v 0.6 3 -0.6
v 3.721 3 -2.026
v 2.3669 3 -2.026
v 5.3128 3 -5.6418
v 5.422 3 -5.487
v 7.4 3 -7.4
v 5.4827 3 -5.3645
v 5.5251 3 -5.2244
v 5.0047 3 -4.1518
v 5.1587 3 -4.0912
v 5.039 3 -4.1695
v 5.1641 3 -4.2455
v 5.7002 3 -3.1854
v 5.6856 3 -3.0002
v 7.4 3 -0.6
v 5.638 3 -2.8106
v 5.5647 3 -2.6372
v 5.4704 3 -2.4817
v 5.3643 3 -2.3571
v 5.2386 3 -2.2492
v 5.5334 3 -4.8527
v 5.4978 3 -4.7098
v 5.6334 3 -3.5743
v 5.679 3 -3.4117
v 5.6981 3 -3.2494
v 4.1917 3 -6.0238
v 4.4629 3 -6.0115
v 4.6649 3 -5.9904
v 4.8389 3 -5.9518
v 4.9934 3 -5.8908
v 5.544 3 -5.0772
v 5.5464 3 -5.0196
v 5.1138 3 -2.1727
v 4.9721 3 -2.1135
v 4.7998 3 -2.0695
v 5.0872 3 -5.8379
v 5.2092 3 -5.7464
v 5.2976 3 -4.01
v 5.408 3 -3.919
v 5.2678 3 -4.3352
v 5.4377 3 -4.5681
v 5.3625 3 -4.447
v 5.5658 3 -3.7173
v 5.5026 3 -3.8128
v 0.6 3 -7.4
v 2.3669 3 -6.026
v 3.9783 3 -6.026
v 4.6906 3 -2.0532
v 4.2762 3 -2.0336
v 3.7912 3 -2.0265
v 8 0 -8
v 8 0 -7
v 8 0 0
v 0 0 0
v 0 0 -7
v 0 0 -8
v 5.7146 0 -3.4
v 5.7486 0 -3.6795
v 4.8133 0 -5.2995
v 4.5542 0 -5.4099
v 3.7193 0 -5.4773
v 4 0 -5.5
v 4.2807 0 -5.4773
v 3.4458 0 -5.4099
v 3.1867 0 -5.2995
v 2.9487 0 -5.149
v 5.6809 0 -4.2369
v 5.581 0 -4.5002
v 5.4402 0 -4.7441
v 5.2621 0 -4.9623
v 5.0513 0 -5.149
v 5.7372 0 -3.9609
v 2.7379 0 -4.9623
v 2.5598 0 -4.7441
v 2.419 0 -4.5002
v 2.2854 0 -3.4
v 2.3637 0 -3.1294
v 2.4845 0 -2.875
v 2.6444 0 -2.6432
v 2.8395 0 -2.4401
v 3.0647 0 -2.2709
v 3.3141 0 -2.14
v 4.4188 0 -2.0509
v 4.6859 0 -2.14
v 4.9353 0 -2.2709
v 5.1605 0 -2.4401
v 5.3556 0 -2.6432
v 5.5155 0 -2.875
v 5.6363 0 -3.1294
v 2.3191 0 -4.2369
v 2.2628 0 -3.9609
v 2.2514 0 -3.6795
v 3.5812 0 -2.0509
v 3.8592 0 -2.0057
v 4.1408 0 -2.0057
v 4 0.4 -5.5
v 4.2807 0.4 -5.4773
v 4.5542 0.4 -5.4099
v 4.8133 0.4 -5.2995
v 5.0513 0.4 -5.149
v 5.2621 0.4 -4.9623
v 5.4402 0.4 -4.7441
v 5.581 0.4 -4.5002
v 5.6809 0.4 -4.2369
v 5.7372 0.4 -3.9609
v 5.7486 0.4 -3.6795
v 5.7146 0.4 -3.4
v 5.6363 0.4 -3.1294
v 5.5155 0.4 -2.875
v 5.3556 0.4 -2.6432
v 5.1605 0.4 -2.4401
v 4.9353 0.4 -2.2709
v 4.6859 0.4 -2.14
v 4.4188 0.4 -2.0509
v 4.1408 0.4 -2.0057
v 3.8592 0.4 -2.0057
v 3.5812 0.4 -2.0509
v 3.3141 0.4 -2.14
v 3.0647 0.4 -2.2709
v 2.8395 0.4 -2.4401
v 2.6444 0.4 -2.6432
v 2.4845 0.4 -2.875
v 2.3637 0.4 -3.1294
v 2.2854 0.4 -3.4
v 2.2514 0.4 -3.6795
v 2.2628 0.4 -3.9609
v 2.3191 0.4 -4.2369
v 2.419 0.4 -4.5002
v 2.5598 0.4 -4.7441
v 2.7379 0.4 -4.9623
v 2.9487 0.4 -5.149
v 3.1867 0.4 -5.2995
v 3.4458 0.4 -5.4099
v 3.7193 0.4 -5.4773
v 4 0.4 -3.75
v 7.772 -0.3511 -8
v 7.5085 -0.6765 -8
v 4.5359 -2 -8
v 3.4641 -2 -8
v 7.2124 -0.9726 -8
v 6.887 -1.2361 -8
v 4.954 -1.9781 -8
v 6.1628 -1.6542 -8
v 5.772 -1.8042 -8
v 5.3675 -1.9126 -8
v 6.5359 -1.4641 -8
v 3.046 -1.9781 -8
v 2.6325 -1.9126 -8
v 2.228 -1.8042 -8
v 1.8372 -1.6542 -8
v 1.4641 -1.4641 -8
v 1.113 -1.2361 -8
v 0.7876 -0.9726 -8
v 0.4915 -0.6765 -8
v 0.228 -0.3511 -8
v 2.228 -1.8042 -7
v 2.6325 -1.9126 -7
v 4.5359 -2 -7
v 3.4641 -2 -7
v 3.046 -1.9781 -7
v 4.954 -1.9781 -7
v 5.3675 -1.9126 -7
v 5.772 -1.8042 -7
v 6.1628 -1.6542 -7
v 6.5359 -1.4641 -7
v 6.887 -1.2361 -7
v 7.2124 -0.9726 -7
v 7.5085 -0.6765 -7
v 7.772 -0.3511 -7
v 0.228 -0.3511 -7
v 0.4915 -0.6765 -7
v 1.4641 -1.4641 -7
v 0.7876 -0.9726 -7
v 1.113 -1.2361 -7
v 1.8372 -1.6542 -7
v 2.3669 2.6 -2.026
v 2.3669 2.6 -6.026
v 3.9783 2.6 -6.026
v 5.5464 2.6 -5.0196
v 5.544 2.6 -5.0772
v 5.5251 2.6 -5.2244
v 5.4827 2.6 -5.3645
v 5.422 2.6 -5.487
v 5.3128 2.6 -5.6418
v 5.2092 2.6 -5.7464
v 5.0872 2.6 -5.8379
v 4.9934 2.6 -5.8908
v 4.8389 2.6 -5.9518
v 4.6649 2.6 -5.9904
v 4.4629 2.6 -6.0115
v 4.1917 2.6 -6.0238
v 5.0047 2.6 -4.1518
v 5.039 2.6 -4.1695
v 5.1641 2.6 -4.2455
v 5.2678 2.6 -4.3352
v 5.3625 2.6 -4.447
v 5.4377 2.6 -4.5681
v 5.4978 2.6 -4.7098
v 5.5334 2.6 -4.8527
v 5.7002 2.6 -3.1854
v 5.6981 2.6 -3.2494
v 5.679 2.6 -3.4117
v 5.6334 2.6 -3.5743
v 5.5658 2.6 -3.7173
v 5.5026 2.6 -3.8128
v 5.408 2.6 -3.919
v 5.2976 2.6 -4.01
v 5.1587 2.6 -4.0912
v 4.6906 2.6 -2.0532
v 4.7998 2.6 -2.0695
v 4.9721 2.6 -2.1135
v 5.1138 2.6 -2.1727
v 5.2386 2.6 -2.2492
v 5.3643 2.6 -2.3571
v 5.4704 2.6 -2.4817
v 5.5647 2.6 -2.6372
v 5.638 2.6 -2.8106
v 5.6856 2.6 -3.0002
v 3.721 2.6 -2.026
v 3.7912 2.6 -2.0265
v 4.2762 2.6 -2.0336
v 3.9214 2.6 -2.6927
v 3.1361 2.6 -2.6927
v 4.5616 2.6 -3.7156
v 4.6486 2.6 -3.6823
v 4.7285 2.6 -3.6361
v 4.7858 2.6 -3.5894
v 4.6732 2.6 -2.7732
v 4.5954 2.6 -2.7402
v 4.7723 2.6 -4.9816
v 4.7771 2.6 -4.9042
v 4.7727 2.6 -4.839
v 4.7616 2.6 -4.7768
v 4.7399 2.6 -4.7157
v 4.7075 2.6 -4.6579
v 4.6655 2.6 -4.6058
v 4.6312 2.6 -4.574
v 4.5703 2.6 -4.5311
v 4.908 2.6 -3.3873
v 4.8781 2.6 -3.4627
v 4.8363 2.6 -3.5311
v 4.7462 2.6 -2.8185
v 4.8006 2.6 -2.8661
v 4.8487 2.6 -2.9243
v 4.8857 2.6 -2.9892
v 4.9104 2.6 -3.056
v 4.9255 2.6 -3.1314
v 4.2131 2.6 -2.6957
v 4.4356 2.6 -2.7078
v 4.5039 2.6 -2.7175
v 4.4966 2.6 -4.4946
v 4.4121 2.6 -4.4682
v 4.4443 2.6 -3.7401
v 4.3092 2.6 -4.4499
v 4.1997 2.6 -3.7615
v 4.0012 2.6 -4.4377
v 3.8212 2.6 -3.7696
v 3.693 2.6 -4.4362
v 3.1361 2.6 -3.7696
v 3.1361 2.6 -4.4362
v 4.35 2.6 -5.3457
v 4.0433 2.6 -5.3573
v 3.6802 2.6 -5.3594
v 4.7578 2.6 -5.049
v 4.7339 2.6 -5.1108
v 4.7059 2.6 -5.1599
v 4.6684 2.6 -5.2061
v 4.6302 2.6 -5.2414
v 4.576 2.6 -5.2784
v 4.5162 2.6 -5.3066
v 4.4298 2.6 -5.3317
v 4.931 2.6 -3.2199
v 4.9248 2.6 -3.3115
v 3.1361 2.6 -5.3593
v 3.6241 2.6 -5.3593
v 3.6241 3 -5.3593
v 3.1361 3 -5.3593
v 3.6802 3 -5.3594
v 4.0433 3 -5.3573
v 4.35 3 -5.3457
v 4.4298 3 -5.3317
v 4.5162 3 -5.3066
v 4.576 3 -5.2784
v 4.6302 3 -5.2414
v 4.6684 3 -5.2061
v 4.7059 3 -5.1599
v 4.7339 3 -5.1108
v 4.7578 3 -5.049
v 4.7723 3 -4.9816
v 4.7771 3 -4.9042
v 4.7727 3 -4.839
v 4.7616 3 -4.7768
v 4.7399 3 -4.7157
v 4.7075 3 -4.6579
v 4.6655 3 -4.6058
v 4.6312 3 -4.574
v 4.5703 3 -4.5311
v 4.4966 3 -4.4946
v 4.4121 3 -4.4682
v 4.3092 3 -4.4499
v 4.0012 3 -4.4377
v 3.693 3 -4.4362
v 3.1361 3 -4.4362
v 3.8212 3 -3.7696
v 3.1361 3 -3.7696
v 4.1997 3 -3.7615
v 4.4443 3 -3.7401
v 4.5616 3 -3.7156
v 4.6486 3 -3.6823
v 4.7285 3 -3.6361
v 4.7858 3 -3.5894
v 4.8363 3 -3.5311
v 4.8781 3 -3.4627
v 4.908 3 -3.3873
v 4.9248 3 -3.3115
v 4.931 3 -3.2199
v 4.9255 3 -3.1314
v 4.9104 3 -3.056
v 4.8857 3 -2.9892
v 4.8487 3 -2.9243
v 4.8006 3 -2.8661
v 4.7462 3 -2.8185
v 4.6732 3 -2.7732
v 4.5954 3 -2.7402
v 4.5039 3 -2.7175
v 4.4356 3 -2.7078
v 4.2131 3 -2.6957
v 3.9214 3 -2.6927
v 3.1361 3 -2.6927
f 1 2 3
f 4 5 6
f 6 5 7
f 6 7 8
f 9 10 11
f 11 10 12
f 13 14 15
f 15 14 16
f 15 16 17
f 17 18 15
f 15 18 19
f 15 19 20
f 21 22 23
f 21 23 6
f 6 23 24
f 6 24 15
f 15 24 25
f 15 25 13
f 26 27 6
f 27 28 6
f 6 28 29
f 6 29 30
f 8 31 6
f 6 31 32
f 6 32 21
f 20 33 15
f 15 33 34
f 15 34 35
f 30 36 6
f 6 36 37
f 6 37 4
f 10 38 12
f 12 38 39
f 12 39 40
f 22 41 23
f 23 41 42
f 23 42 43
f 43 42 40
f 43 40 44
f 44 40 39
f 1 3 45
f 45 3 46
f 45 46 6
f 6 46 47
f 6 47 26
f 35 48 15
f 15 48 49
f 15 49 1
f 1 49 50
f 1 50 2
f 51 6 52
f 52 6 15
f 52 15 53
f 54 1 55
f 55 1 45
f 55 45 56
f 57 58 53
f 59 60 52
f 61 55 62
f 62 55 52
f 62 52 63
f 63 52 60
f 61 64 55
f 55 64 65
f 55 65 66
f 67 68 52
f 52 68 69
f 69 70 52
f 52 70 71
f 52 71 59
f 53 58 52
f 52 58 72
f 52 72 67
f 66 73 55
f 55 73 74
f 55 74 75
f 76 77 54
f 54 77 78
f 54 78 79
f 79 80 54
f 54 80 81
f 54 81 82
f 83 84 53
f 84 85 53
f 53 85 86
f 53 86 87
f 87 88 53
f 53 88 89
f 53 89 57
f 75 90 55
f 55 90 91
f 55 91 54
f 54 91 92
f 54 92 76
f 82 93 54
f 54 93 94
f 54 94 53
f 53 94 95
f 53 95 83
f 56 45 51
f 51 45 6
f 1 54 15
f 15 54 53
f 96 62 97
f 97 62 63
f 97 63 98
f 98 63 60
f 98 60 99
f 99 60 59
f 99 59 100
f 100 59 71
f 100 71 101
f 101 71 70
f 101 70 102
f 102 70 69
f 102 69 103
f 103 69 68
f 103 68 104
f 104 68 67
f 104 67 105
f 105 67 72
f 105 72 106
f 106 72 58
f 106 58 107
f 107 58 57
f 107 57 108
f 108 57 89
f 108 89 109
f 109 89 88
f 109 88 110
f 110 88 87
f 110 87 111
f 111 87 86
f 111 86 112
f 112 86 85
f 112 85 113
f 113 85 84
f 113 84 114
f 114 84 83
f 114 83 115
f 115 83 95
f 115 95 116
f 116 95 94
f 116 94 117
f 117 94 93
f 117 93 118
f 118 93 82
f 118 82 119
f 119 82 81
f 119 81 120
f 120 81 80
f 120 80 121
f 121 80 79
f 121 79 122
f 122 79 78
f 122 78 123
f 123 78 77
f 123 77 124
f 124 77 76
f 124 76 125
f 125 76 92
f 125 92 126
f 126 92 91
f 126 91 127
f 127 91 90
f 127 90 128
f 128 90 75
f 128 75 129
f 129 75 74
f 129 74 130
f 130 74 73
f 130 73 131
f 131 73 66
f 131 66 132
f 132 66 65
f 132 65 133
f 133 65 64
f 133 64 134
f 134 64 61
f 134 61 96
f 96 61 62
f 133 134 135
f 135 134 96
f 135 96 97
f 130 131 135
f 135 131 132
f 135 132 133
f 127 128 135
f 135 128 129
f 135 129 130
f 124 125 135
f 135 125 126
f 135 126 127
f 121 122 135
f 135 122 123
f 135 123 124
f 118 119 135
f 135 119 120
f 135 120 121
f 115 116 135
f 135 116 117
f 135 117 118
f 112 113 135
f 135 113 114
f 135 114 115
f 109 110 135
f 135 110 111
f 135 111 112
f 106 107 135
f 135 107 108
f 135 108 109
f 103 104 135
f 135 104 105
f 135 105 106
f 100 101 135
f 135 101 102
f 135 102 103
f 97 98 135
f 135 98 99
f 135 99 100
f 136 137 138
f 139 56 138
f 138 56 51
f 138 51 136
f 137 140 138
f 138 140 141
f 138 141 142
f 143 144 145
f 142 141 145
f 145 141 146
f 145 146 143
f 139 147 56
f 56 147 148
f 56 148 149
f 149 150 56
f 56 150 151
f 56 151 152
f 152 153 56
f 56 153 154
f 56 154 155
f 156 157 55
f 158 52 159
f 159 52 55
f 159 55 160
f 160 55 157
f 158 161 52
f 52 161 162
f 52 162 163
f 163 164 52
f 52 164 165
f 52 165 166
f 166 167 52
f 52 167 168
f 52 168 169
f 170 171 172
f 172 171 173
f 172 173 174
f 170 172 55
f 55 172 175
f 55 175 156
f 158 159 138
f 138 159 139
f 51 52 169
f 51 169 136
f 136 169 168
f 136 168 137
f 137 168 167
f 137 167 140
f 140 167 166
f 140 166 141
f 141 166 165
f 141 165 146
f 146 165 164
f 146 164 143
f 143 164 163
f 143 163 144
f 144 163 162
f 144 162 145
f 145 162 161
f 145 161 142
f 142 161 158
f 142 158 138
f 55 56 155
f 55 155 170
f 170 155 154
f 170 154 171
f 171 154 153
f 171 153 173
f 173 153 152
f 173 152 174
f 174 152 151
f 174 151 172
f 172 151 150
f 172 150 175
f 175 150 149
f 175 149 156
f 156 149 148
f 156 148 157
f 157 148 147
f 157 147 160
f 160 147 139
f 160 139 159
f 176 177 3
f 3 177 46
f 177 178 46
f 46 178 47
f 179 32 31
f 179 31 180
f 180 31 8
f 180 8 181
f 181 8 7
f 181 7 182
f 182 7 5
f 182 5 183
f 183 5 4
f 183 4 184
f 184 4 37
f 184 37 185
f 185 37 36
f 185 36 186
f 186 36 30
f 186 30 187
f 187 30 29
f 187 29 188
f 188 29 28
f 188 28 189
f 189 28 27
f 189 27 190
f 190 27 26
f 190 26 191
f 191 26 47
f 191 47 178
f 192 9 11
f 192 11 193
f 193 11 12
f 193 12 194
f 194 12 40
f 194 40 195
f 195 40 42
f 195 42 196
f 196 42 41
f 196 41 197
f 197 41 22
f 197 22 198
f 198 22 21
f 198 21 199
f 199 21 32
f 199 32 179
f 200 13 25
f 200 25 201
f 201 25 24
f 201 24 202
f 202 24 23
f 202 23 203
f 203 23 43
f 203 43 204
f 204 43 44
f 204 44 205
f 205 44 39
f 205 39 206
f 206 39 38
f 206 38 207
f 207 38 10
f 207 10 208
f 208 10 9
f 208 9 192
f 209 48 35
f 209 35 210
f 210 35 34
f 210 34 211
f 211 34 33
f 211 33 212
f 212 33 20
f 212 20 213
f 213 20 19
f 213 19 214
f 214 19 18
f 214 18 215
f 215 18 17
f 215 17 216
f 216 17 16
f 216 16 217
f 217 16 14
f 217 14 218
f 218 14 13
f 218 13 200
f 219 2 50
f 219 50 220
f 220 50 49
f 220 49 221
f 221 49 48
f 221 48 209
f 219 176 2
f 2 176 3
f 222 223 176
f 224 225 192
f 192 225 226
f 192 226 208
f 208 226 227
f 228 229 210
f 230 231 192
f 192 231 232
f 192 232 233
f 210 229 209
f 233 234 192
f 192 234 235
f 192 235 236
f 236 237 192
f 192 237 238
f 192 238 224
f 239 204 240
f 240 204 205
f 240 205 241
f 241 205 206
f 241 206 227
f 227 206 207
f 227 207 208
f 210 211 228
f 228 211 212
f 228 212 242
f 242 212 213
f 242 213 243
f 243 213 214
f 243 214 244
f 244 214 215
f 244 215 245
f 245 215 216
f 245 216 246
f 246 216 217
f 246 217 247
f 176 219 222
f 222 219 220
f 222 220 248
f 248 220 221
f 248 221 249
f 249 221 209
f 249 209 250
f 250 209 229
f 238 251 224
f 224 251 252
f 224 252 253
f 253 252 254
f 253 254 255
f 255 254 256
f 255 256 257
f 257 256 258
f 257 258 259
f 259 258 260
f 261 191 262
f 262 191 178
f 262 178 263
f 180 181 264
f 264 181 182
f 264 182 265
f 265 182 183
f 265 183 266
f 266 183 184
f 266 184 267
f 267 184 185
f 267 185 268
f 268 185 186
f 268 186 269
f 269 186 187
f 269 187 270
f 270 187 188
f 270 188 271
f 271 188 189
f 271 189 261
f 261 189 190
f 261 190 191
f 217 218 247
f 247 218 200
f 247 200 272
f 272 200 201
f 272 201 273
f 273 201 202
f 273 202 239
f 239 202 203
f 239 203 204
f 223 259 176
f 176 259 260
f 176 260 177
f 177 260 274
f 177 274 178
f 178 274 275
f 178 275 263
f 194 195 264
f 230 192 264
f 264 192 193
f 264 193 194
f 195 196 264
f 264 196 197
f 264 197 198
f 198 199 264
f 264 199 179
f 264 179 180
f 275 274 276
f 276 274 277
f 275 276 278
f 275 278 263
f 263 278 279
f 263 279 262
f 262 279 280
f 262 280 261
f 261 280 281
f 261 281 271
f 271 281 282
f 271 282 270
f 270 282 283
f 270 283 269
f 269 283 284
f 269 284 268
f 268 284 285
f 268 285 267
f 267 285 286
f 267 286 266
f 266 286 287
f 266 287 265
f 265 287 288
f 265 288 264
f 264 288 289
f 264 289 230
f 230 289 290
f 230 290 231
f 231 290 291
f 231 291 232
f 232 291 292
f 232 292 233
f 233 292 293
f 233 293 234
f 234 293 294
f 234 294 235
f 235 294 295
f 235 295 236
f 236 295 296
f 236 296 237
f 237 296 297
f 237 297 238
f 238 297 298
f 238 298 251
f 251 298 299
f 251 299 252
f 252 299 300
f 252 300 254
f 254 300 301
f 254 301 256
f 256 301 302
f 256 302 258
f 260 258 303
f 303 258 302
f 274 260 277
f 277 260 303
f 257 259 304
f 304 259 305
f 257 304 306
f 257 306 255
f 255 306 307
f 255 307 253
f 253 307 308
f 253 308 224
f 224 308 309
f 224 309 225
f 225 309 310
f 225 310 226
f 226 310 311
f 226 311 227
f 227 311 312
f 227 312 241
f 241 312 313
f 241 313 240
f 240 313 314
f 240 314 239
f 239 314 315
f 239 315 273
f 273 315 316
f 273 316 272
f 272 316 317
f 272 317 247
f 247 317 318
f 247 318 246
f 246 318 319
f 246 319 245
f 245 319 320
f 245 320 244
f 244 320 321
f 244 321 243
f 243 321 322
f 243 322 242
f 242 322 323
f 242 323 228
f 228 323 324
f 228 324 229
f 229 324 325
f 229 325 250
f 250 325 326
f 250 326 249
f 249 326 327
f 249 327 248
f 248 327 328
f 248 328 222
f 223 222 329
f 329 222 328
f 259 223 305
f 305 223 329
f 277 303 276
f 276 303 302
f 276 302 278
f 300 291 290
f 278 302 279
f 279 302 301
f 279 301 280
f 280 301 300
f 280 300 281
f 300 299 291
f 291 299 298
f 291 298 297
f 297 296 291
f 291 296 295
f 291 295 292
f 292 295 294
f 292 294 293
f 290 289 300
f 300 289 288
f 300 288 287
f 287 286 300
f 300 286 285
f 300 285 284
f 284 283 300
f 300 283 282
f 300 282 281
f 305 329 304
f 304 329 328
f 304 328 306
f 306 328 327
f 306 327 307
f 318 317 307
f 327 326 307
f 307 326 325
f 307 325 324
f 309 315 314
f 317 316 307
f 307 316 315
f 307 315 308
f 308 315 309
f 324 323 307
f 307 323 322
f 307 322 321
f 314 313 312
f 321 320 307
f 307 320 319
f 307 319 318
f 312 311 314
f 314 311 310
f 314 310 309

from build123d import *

# Parameters (mm, degrees)
SKETCH1_W               = 8
SKETCH1_H               = 8
BOSS_EXTRUDE1_DEPTH     = 3
CUT_EXTRUDE1_DEPTH      = 12.704699911
CUT_EXTRUDE1_DEPTH_BACK = 12.704699911
CUT_EXTRUDE2_DEPTH      = 11
SKETCH4_R               = 1.75
CUT_EXTRUDE3_DEPTH      = 0.4
SKETCH5_W               = 8
SKETCH5_H               = 1
BOSS_EXTRUDE2_DEPTH     = 2
FILLET1_R               = 4
CUT_EXTRUDE4_DEPTH      = 0.4


with BuildPart() as part:
    # Sketch1 → Boss-Extrude1 (new body)
    with BuildSketch(Plane(origin=(0, 0, 0), x_dir=(1, 0, 0), z_dir=(0, 1, 0))):
        with Locations((4, 4)):
            Rectangle(SKETCH1_W, SKETCH1_H)
    extrude(amount=BOSS_EXTRUDE1_DEPTH)

    # Sketch2 → Cut-Extrude1 (cut, two sides: drawn at the far end of the back side and taken through both)
    with BuildSketch(Plane.XY.offset(-CUT_EXTRUDE1_DEPTH_BACK)):
        Polygon((0, 0), (0.6, 3), (0, 3), align=None)
        Polygon((8, 0), (7.4, 3), (8, 3), align=None)
    extrude(amount=CUT_EXTRUDE1_DEPTH + CUT_EXTRUDE1_DEPTH_BACK, mode=Mode.SUBTRACT)

    # Sketch3 → Cut-Extrude2 (cut)
    with BuildSketch(Plane(origin=(0, 0, 0), x_dir=(0, 0, -1), z_dir=(1, 0, 0))):
        Polygon((0, 0), (0.6, 3), (0, 3), align=None)
        Polygon((8, 3), (7.4, 3), (8, 0), align=None)
    extrude(amount=CUT_EXTRUDE2_DEPTH, mode=Mode.SUBTRACT)

    # Sketch4 → Cut-Extrude3 (cut)
    with BuildSketch(Plane.XZ):
        with Locations(Location((4, -3.75, 0), (0, 0, 270))):
            Circle(SKETCH4_R)
    extrude(amount=-CUT_EXTRUDE3_DEPTH, mode=Mode.SUBTRACT)

    # Sketch5 → Boss-Extrude2 (add)
    with BuildSketch(Plane.XZ):
        with Locations((4, -7.5)):
            Rectangle(SKETCH5_W, SKETCH5_H)
    extrude(amount=BOSS_EXTRUDE2_DEPTH)

    # Fillet1
    # the kernel refuses this fillet: 4 mm, written as the material it takes off along each edge
    with BuildSketch(Plane(origin=(8, -2, -16.660254038), x_dir=(0, 1, 0), z_dir=(0, 0, 1)), Plane(origin=(0, -2, 1.660254038), x_dir=(0, 1, 0), z_dir=(0, 0, -1))) as fillet1_piece_1:
        with BuildLine():
            CenterArc((4, 3.464101615), FILLET1_R, 180, 60)
            Line((0, 3.464101615), (-0.08, 3.464101615))
            Line((-0.08, 3.464101615), (-0.08, 0))
            Line((-0.08, 0), (0, -0.08))
            ThreePointArc((0, -0.08), (1, -0.08), (1.96, -0.069282032))
            Line((1.96, -0.069282032), (2, 0))
        make_face()
    extrude(amount=18.320508076, mode=Mode.SUBTRACT)

    # Sketch6 → Cut-Extrude4 (cut)
    with BuildSketch(Plane(origin=(0, 3, 0), x_dir=(1, 0, 0), z_dir=(0, 1, 0))):
        with BuildLine():
            Line((2.366875023, 6.025988971), (3.978253228, 6.025988971))
            add(Edge.make_bspline(
                [(3.978253228, 6.025988971), (4.016981522, 6.025758539), (4.091770291, 6.025313549), (4.200234262, 6.02407341), (4.300910244, 6.020431423), (4.393955008, 6.01730407), (4.479059098, 6.009990491), (4.556891378, 6.004244483), (4.627206795, 5.996339471), (4.710040188, 5.983546816), (4.806360793, 5.963648743), (4.915152558, 5.926842691), (5.018276483, 5.880857129), (5.114182519, 5.822393524), (5.203189243, 5.754016663), (5.28597738, 5.676271174), (5.358728101, 5.58601543), (5.424238976, 5.487508268), (5.479534837, 5.380666952), (5.517612886, 5.26572697), (5.541913225, 5.144795761), (5.544858568, 5.061898711), (5.546362202, 5.019578715)],
                knots=[0, 0, 0, 0, 1.096610875, 2.117681168, 3.071055591, 3.949137991, 4.753059115, 5.489127199, 6.15892391, 6.75575099, 7.862330316, 8.938514814, 10.001276227, 11.05313779, 12.110449801, 13.174958802, 14.260456508, 15.384725817, 16.521138801, 17.654729897, 18.802709851, 20, 20, 20, 20], degree=3))
            add(Edge.make_bspline(
                [(5.546362202, 5.019578715), (5.544802721, 4.973493311), (5.541727769, 4.882623117), (5.513106772, 4.749371009), (5.467516851, 4.621879661), (5.40315043, 4.502217288), (5.324314646, 4.392405777), (5.231065087, 4.295977947), (5.12477188, 4.213520097), (5.044958184, 4.17248881), (5.004695536, 4.151790253)],
                knots=[0, 0, 0, 0, 1.023065178, 2.01725758, 3.014298905, 4.023406433, 5.026736079, 6.009055718, 6.99565244, 8, 8, 8, 8], degree=3))
            add(Edge.make_bspline(
                [(5.004695536, 4.151790253), (5.0318132, 4.142553707), (5.085431798, 4.12429068), (5.162178571, 4.090754541), (5.234086142, 4.051862796), (5.301118401, 4.008841827), (5.363784101, 3.961377137), (5.420252395, 3.907894911), (5.473763466, 3.851437899), (5.520742036, 3.789172127), (5.563264851, 3.724075672), (5.599360366, 3.65512964), (5.630616076, 3.583992364), (5.656755805, 3.509943884), (5.675388869, 3.432487562), (5.69031884, 3.352599145), (5.697956597, 3.269724954), (5.699451608, 3.213768347), (5.700208356, 3.185444099)],
                knots=[0, 0, 0, 0, 1.072651974, 2.1209089, 3.132484228, 4.131466326, 5.101889999, 6.071643115, 7.041396231, 8.011819904, 8.988565287, 9.95070344, 10.922775742, 11.897213062, 12.887138018, 13.903598663, 14.938838629, 16, 16, 16, 16], degree=3))
            add(Edge.make_bspline(
                [(5.700208356, 3.185444099), (5.698598844, 3.140212221), (5.695387249, 3.049957264), (5.671387404, 2.915316113), (5.630853991, 2.783046233), (5.575963383, 2.654005704), (5.507783193, 2.532330941), (5.427626978, 2.4212421), (5.334105775, 2.324584109), (5.230539132, 2.239414342), (5.113835126, 2.16890592), (4.984093466, 2.114745557), (4.842134035, 2.073828468), (4.742124288, 2.060236169), (4.690592972, 2.053232561)],
                knots=[0, 0, 0, 0, 0.975059807, 1.945618526, 2.93861228, 3.952760547, 4.963632603, 5.940527786, 6.897802811, 7.855787948, 8.824773195, 9.82606706, 10.879852914, 12, 12, 12, 12], degree=3))
            add(Edge.make_bspline(
                [(4.690592972, 2.053232561), (4.670833027, 2.051565703), (4.625472552, 2.047739302), (4.548543711, 2.042982046), (4.453955886, 2.039386091), (4.341791209, 2.035134329), (4.211704387, 2.032064432), (4.063991072, 2.029968108), (3.898399223, 2.027247493), (3.782207382, 2.026423), (3.72104169, 2.025988971)],
                knots=[0, 0, 0, 0, 0.490565993, 1.126131979, 1.906526787, 2.832178623, 3.902933831, 5.125497984, 6.486805064, 8, 8, 8, 8], degree=3))
            Line((3.72104169, 2.025988971), (2.366875023, 2.025988971))
            Line((2.366875023, 2.025988971), (2.366875023, 6.025988971))
        make_face()
        with BuildLine():
            Line((3.136105792, 5.359322304), (3.136105792, 4.436245381))
            Line((3.136105792, 4.436245381), (3.692996818, 4.436245381))
            add(Edge.make_bspline(
                [(3.692996818, 4.436245381), (3.732259986, 4.43615888), (3.807047978, 4.435994114), (3.91334909, 4.43709824), (4.008173732, 4.437613694), (4.091249283, 4.439126475), (4.162558686, 4.441623123), (4.221845003, 4.444116229), (4.269450826, 4.446003799), (4.297170592, 4.448699163), (4.309182715, 4.449867176)],
                knots=[0, 0, 0, 0, 1.528479216, 2.911428072, 4.138414629, 5.21998762, 6.145918986, 6.915989543, 7.530253335, 8, 8, 8, 8], degree=3))
            add(Edge.make_bspline(
                [(4.309182715, 4.449867176), (4.3438238, 4.455079871), (4.41040184, 4.465098351), (4.503567155, 4.494454854), (4.584375726, 4.536913614), (4.653724553, 4.58976356), (4.708773054, 4.654604252), (4.749170144, 4.72919452), (4.772805412, 4.813847791), (4.775653451, 4.873327339), (4.777131433, 4.904194099)],
                knots=[0, 0, 0, 0, 1.162079002, 2.233444551, 3.225172046, 4.179556897, 5.110707885, 6.027301426, 6.976273101, 8, 8, 8, 8], degree=3))
            add(Edge.make_bspline(
                [(4.777131433, 4.904194099), (4.776203651, 4.934000177), (4.774422539, 4.991220438), (4.752297006, 5.072236392), (4.719032932, 5.144995211), (4.670409719, 5.207709385), (4.609395094, 5.260672186), (4.534716376, 5.302043411), (4.446732173, 5.330510733), (4.38335661, 5.340467498), (4.3500481, 5.345700509)],
                knots=[0, 0, 0, 0, 1.044241546, 2.004684189, 2.928111627, 3.838334562, 4.769594837, 5.748424953, 6.81663206, 8, 8, 8, 8], degree=3))
            add(Edge.make_bspline(
                [(4.3500481, 5.345700509), (4.336967148, 5.34687206), (4.306041436, 5.349641817), (4.252292165, 5.35144236), (4.183926257, 5.353976507), (4.100595234, 5.356449705), (4.002296842, 5.357959731), (3.889310645, 5.358468661), (3.761641688, 5.359577608), (3.671629596, 5.359410545), (3.624086561, 5.359322304)],
                knots=[0, 0, 0, 0, 0.433943041, 1.02591908, 1.776648879, 2.694999143, 3.780816848, 5.02540149, 6.428861738, 8, 8, 8, 8], degree=3))
            Line((3.624086561, 5.359322304), (3.136105792, 5.359322304))
        make_face(mode=Mode.SUBTRACT)
        with BuildLine():
            Line((3.136105792, 3.769578715), (3.136105792, 2.692655638))
            Line((3.136105792, 2.692655638), (3.921362202, 2.692655638))
            add(Edge.make_bspline(
                [(3.921362202, 2.692655638), (3.957955896, 2.692474114), (4.027408125, 2.692129595), (4.126486109, 2.694437139), (4.214933064, 2.69519802), (4.293162962, 2.698994102), (4.360764719, 2.701865798), (4.418016495, 2.705445849), (4.464471269, 2.711139165), (4.491885355, 2.715559172), (4.503894254, 2.717495381)],
                knots=[0, 0, 0, 0, 1.504773752, 2.85595359, 4.075347731, 5.141676974, 6.076328919, 6.858106537, 7.499786952, 8, 8, 8, 8], degree=3))
            add(Edge.make_bspline(
                [(4.503894254, 2.717495381), (4.534390702, 2.723929926), (4.593642924, 2.736431746), (4.675765739, 2.772305806), (4.749780788, 2.817800627), (4.813883543, 2.876271003), (4.866572685, 2.946316906), (4.904617992, 3.02809262), (4.927561873, 3.120636015), (4.929805566, 3.185839411), (4.930977587, 3.219899227)],
                knots=[0, 0, 0, 0, 1.031056579, 2.003262591, 2.954260215, 3.900917722, 4.862741126, 5.841340256, 6.872396835, 8, 8, 8, 8], degree=3))
            add(Edge.make_bspline(
                [(4.930977587, 3.219899227), (4.930031736, 3.249108452), (4.928190747, 3.305960799), (4.910169932, 3.38739087), (4.88101832, 3.461844609), (4.840421058, 3.528813936), (4.789699747, 3.589139928), (4.726998003, 3.639624345), (4.654607383, 3.681685756), (4.585597801, 3.709395341), (4.520158829, 3.72717269), (4.457743787, 3.73883498), (4.382520906, 3.748066566), (4.294854864, 3.755875466), (4.194389919, 3.762120128), (4.081396073, 3.767043008), (3.95555801, 3.769103428), (3.867409493, 3.769415255), (3.821201946, 3.769578715)],
                knots=[0, 0, 0, 0, 0.992165387, 1.931134082, 2.820086661, 3.700270762, 4.583075858, 5.486803518, 6.423132184, 7.421722103, 8.005700193, 8.727213115, 9.57900282, 10.582332745, 11.720121093, 13.002085041, 14.428489784, 16, 16, 16, 16], degree=3))
            Line((3.821201946, 3.769578715), (3.136105792, 3.769578715))
        make_face(mode=Mode.SUBTRACT)
    extrude(amount=-CUT_EXTRUDE4_DEPTH, mode=Mode.SUBTRACT)


solid = part.part
